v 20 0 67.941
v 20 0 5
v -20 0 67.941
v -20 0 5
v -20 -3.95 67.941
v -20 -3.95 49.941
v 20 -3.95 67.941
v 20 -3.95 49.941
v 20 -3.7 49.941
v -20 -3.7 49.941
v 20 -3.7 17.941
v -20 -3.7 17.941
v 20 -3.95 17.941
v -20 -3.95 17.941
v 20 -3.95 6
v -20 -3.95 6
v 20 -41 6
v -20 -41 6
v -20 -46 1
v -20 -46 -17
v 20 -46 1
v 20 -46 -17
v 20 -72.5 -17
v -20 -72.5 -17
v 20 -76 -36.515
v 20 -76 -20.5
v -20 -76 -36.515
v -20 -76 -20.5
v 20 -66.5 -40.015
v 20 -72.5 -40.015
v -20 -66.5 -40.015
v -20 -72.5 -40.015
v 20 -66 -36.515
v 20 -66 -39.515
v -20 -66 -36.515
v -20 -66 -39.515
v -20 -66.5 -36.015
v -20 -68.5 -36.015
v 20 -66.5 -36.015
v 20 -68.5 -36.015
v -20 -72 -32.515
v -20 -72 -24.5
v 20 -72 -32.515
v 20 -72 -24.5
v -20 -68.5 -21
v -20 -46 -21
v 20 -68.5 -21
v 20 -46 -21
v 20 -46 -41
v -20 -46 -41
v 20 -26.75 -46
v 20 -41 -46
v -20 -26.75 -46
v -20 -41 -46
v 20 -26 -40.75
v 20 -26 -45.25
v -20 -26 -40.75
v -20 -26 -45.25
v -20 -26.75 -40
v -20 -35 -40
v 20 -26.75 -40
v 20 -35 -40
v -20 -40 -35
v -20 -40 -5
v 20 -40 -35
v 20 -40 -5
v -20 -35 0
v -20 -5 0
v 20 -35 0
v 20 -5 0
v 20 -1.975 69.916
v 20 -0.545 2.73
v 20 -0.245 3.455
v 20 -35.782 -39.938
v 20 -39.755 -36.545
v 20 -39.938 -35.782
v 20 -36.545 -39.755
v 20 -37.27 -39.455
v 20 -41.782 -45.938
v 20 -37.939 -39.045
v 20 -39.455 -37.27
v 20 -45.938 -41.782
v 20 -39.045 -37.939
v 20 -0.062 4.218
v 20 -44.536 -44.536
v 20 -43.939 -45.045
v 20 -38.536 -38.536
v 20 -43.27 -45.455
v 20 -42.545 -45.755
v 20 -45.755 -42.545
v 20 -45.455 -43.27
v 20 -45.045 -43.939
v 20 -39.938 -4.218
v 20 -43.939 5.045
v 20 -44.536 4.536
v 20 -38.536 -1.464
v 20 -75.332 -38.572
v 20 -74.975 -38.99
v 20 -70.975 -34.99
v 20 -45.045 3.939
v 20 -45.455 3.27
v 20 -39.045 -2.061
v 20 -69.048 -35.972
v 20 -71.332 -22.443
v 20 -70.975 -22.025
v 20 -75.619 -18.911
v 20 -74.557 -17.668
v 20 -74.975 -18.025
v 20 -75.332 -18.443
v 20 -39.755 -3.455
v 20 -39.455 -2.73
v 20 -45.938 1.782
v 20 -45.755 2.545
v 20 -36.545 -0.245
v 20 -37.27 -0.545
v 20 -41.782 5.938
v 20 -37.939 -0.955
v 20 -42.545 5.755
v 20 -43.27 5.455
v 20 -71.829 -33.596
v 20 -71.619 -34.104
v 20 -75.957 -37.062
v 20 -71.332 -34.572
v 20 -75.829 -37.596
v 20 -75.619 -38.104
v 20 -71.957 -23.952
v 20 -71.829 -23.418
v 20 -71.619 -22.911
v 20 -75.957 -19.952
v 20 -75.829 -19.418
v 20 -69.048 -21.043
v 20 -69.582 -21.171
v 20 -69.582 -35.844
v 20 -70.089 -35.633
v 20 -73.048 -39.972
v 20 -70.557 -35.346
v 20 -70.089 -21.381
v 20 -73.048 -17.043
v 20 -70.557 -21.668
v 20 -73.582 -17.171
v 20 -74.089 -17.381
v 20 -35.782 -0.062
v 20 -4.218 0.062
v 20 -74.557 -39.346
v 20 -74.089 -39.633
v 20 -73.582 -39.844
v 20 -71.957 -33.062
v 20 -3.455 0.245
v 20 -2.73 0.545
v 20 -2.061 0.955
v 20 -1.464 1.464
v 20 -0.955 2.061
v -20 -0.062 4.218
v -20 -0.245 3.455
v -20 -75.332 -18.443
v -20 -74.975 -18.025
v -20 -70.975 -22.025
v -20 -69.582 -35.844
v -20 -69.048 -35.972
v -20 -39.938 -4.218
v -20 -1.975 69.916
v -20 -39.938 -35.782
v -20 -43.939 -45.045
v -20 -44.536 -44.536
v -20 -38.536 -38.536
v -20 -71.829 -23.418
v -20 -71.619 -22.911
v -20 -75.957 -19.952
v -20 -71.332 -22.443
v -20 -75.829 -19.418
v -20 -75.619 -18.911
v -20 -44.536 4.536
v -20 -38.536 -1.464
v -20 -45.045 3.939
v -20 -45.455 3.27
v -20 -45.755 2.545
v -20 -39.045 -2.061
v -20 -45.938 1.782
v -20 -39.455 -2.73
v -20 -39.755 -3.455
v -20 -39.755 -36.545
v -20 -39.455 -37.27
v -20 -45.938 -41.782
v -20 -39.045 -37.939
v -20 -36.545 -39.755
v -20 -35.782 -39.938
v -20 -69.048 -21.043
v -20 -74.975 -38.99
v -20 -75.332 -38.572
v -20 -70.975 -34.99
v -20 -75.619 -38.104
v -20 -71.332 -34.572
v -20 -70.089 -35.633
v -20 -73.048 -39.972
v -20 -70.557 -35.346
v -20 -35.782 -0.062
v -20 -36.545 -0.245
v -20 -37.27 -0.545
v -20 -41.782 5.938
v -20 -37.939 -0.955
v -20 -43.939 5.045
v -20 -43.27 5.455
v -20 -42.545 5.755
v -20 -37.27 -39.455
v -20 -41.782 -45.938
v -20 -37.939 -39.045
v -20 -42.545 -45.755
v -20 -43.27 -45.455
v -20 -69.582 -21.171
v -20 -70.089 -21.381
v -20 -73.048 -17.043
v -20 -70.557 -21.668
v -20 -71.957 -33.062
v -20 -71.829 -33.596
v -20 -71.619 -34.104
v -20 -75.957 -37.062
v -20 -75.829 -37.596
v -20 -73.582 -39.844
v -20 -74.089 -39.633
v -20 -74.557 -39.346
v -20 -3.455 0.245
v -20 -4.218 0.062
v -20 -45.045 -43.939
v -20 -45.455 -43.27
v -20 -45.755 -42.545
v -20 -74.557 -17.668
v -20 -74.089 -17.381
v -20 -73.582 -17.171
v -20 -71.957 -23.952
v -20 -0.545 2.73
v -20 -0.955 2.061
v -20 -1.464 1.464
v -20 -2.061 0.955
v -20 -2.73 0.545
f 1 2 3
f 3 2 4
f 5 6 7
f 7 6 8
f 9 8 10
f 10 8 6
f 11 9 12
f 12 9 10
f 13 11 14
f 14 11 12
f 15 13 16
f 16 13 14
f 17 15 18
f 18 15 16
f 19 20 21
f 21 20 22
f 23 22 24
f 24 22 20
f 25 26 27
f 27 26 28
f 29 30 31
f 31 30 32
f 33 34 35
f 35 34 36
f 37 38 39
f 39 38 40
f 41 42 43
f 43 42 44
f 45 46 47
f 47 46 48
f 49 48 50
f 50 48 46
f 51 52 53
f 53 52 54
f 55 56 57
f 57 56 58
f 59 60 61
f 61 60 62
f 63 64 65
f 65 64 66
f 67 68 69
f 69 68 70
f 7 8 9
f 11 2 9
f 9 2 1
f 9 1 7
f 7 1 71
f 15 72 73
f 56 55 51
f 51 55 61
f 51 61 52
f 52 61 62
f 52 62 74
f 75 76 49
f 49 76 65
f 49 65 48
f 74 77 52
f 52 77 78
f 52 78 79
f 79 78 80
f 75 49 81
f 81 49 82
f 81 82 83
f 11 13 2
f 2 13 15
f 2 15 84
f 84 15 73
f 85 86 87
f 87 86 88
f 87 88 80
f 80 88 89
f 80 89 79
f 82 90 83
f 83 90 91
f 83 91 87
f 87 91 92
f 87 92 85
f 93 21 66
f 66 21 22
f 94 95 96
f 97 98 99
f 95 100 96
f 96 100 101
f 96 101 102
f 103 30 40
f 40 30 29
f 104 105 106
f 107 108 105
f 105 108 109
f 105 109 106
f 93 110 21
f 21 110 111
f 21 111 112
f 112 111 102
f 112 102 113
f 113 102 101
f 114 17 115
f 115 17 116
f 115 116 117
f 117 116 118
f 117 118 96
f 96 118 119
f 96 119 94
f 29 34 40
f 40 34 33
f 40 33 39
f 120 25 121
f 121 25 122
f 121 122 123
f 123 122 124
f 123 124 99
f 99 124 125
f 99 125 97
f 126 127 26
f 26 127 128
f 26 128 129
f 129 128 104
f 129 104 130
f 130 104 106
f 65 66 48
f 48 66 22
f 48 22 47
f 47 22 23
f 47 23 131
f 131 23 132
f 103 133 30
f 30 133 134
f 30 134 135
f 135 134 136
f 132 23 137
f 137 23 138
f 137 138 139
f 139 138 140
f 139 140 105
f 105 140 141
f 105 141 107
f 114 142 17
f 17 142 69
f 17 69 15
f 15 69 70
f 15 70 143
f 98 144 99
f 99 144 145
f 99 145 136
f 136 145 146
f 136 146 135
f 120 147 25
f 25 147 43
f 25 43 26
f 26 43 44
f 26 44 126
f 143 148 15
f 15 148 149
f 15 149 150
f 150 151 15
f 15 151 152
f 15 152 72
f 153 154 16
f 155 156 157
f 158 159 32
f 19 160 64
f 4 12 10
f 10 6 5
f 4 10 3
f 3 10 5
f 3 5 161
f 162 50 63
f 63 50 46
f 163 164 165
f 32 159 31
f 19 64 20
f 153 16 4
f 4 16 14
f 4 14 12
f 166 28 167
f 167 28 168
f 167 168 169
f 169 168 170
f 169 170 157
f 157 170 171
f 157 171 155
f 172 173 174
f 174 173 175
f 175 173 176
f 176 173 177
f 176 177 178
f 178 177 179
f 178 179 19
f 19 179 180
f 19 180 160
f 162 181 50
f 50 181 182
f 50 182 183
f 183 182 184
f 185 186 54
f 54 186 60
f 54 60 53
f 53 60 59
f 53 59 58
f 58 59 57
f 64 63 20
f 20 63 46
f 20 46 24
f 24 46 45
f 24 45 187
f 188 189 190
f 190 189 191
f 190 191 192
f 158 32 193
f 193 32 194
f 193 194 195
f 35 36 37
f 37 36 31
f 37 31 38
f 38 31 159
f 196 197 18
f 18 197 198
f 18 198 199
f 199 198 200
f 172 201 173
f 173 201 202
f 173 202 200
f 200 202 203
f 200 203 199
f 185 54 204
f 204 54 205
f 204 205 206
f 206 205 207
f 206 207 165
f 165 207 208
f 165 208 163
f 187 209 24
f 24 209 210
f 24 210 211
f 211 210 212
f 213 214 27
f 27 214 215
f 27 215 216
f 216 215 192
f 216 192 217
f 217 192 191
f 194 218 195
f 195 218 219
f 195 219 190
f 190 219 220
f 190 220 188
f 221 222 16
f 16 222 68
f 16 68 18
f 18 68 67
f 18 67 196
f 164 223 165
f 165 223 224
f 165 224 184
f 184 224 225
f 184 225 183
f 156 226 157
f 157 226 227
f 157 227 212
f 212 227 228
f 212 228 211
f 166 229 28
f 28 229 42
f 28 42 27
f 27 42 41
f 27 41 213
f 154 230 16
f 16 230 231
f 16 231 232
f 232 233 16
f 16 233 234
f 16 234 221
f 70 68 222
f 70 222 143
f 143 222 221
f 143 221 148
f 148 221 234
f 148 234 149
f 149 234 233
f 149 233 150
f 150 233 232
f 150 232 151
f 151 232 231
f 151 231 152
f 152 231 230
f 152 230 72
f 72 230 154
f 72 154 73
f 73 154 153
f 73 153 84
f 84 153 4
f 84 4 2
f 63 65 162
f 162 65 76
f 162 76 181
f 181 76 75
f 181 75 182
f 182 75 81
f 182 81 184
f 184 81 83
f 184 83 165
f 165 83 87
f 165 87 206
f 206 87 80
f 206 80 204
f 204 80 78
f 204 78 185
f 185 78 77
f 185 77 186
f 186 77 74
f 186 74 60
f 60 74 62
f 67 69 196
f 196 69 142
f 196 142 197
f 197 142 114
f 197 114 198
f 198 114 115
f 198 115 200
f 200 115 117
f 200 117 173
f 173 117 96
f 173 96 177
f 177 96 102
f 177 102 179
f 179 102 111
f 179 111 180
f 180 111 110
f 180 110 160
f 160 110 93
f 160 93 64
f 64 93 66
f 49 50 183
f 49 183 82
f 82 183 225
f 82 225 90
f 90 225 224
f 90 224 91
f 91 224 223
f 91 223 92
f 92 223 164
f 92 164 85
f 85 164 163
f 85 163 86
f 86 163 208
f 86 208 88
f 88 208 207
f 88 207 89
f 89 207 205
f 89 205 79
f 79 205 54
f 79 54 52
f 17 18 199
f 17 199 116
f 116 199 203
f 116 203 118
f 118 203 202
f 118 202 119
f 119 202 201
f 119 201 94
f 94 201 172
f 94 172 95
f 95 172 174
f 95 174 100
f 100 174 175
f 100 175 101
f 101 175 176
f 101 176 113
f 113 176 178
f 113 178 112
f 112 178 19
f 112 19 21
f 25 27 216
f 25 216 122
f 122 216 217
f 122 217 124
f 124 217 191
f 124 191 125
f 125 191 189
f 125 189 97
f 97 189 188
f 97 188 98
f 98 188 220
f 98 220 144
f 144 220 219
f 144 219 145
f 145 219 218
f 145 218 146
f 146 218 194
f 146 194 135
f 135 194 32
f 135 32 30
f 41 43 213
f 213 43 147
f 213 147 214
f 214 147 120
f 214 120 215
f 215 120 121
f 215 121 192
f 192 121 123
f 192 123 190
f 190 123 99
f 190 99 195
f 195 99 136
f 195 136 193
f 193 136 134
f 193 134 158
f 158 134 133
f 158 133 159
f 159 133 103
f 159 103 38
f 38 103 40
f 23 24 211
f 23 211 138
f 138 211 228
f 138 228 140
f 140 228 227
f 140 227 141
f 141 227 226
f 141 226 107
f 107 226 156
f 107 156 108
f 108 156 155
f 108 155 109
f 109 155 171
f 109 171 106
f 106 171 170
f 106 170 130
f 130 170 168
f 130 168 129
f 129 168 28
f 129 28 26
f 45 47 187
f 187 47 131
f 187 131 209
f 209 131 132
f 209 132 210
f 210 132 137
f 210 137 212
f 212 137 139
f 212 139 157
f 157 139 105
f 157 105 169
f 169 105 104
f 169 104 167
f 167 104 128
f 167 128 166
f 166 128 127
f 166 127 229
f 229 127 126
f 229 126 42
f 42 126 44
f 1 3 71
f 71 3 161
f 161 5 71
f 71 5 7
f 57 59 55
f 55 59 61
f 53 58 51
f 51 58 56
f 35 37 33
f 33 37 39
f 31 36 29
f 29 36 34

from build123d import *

# Parameters (mm, degrees)
BOSS_EXTRUDE1_DEPTH = 20
FILLET2_R           = 5
FILLET3_R           = 5
FILLET4_R           = 5
FILLET5_R           = 3.5
CHAMFER1_SIZE       = 2
CHAMFER2_SIZE       = 0.75
CHAMFER3_SIZE       = 0.5


with BuildPart() as part:
    # Sketch1 → Boss-Extrude1 (new, symmetric)
    with BuildSketch(Plane(origin=(0, 0, 0), x_dir=(0, 0, -1), z_dir=(1, 0, 0))):
        Polygon((-69.940788655, 0), (-15, 0), (0, 0), (0, -40), (40, -40), (40, -26), (46, -26), (46, -46), (-6, -46), (-6, -3.95), (-13.226857143, -3.95), (-17.940788655, -3.95), (-17.940788655, -3.7), (-49.940788655, -3.7), (-49.940788655, -3.95), (-69.940788655, -3.95), align=None)
        Polygon((21, -72), (21, -46), (17, -46), (17, -76), (40.014855678, -76), (40.014855678, -66), (36.014855678, -66), (36.014855678, -72), align=None)
    extrude(amount=BOSS_EXTRUDE1_DEPTH, both=True)

    # Fillet2
    fillet2_edges = [part.edges().sort_by_distance(p)[0] for p in [
        (0, 0, 0),
    ]]
    fillet(fillet2_edges, radius=FILLET2_R)

    # Fillet3
    fillet3_edges = [part.edges().sort_by_distance(p)[0] for p in [
        (0, -40, 0),
        (0, -40, -40),
    ]]
    fillet(fillet3_edges, radius=FILLET3_R)

    # Fillet4
    fillet4_edges = [part.edges().sort_by_distance(p)[0] for p in [
        (0, -46, -46),
        (0, -46, 6),
    ]]
    fillet(fillet4_edges, radius=FILLET4_R)

    # Fillet5
    fillet5_edges = [part.edges().sort_by_distance(p)[0] for p in [
        (0, -72, -21),
        (0, -72, -36.014855678),
        (0, -76, -40.014855678),
        (0, -76, -17),
    ]]
    fillet(fillet5_edges, radius=FILLET5_R)

    # Chamfer1
    # the kernel refuses this chamfer: 2 mm, written as the material it takes off along each edge
    with BuildSketch(Plane(origin=(-25.143365976, -3.95, 69.940788655), x_dir=(0, 0.9996219169112968, 0.027495876610589075), z_dir=(1, 0, 0)), Plane(origin=(-25.143365976, 0, 69.940788655), x_dir=(0, 0.02749587661058631, -0.9996219169112968), z_dir=(1, 0, 0))) as chamfer1_piece_1:
        Polygon((CHAMFER1_SIZE * 0.999621916911, -CHAMFER1_SIZE * 0.0274958766106), (-CHAMFER1_SIZE * 0.0274958766106, -CHAMFER1_SIZE * 0.999621916911), (0, 0), align=None)
    extrude(amount=50.286731952, mode=Mode.SUBTRACT)

    # Chamfer2
    chamfer2_edges = [part.edges().sort_by_distance(p)[0] for p in [
        (0, -26, -40),
        (0, -26, -46),
    ]]
    chamfer(chamfer2_edges, length=CHAMFER2_SIZE)

    # Chamfer3
    chamfer3_edges = [part.edges().sort_by_distance(p)[0] for p in [
        (0, -66, -36.014855678),
        (0, -66, -40.014855678),
    ]]
    chamfer(chamfer3_edges, length=CHAMFER3_SIZE)


solid = part.part
